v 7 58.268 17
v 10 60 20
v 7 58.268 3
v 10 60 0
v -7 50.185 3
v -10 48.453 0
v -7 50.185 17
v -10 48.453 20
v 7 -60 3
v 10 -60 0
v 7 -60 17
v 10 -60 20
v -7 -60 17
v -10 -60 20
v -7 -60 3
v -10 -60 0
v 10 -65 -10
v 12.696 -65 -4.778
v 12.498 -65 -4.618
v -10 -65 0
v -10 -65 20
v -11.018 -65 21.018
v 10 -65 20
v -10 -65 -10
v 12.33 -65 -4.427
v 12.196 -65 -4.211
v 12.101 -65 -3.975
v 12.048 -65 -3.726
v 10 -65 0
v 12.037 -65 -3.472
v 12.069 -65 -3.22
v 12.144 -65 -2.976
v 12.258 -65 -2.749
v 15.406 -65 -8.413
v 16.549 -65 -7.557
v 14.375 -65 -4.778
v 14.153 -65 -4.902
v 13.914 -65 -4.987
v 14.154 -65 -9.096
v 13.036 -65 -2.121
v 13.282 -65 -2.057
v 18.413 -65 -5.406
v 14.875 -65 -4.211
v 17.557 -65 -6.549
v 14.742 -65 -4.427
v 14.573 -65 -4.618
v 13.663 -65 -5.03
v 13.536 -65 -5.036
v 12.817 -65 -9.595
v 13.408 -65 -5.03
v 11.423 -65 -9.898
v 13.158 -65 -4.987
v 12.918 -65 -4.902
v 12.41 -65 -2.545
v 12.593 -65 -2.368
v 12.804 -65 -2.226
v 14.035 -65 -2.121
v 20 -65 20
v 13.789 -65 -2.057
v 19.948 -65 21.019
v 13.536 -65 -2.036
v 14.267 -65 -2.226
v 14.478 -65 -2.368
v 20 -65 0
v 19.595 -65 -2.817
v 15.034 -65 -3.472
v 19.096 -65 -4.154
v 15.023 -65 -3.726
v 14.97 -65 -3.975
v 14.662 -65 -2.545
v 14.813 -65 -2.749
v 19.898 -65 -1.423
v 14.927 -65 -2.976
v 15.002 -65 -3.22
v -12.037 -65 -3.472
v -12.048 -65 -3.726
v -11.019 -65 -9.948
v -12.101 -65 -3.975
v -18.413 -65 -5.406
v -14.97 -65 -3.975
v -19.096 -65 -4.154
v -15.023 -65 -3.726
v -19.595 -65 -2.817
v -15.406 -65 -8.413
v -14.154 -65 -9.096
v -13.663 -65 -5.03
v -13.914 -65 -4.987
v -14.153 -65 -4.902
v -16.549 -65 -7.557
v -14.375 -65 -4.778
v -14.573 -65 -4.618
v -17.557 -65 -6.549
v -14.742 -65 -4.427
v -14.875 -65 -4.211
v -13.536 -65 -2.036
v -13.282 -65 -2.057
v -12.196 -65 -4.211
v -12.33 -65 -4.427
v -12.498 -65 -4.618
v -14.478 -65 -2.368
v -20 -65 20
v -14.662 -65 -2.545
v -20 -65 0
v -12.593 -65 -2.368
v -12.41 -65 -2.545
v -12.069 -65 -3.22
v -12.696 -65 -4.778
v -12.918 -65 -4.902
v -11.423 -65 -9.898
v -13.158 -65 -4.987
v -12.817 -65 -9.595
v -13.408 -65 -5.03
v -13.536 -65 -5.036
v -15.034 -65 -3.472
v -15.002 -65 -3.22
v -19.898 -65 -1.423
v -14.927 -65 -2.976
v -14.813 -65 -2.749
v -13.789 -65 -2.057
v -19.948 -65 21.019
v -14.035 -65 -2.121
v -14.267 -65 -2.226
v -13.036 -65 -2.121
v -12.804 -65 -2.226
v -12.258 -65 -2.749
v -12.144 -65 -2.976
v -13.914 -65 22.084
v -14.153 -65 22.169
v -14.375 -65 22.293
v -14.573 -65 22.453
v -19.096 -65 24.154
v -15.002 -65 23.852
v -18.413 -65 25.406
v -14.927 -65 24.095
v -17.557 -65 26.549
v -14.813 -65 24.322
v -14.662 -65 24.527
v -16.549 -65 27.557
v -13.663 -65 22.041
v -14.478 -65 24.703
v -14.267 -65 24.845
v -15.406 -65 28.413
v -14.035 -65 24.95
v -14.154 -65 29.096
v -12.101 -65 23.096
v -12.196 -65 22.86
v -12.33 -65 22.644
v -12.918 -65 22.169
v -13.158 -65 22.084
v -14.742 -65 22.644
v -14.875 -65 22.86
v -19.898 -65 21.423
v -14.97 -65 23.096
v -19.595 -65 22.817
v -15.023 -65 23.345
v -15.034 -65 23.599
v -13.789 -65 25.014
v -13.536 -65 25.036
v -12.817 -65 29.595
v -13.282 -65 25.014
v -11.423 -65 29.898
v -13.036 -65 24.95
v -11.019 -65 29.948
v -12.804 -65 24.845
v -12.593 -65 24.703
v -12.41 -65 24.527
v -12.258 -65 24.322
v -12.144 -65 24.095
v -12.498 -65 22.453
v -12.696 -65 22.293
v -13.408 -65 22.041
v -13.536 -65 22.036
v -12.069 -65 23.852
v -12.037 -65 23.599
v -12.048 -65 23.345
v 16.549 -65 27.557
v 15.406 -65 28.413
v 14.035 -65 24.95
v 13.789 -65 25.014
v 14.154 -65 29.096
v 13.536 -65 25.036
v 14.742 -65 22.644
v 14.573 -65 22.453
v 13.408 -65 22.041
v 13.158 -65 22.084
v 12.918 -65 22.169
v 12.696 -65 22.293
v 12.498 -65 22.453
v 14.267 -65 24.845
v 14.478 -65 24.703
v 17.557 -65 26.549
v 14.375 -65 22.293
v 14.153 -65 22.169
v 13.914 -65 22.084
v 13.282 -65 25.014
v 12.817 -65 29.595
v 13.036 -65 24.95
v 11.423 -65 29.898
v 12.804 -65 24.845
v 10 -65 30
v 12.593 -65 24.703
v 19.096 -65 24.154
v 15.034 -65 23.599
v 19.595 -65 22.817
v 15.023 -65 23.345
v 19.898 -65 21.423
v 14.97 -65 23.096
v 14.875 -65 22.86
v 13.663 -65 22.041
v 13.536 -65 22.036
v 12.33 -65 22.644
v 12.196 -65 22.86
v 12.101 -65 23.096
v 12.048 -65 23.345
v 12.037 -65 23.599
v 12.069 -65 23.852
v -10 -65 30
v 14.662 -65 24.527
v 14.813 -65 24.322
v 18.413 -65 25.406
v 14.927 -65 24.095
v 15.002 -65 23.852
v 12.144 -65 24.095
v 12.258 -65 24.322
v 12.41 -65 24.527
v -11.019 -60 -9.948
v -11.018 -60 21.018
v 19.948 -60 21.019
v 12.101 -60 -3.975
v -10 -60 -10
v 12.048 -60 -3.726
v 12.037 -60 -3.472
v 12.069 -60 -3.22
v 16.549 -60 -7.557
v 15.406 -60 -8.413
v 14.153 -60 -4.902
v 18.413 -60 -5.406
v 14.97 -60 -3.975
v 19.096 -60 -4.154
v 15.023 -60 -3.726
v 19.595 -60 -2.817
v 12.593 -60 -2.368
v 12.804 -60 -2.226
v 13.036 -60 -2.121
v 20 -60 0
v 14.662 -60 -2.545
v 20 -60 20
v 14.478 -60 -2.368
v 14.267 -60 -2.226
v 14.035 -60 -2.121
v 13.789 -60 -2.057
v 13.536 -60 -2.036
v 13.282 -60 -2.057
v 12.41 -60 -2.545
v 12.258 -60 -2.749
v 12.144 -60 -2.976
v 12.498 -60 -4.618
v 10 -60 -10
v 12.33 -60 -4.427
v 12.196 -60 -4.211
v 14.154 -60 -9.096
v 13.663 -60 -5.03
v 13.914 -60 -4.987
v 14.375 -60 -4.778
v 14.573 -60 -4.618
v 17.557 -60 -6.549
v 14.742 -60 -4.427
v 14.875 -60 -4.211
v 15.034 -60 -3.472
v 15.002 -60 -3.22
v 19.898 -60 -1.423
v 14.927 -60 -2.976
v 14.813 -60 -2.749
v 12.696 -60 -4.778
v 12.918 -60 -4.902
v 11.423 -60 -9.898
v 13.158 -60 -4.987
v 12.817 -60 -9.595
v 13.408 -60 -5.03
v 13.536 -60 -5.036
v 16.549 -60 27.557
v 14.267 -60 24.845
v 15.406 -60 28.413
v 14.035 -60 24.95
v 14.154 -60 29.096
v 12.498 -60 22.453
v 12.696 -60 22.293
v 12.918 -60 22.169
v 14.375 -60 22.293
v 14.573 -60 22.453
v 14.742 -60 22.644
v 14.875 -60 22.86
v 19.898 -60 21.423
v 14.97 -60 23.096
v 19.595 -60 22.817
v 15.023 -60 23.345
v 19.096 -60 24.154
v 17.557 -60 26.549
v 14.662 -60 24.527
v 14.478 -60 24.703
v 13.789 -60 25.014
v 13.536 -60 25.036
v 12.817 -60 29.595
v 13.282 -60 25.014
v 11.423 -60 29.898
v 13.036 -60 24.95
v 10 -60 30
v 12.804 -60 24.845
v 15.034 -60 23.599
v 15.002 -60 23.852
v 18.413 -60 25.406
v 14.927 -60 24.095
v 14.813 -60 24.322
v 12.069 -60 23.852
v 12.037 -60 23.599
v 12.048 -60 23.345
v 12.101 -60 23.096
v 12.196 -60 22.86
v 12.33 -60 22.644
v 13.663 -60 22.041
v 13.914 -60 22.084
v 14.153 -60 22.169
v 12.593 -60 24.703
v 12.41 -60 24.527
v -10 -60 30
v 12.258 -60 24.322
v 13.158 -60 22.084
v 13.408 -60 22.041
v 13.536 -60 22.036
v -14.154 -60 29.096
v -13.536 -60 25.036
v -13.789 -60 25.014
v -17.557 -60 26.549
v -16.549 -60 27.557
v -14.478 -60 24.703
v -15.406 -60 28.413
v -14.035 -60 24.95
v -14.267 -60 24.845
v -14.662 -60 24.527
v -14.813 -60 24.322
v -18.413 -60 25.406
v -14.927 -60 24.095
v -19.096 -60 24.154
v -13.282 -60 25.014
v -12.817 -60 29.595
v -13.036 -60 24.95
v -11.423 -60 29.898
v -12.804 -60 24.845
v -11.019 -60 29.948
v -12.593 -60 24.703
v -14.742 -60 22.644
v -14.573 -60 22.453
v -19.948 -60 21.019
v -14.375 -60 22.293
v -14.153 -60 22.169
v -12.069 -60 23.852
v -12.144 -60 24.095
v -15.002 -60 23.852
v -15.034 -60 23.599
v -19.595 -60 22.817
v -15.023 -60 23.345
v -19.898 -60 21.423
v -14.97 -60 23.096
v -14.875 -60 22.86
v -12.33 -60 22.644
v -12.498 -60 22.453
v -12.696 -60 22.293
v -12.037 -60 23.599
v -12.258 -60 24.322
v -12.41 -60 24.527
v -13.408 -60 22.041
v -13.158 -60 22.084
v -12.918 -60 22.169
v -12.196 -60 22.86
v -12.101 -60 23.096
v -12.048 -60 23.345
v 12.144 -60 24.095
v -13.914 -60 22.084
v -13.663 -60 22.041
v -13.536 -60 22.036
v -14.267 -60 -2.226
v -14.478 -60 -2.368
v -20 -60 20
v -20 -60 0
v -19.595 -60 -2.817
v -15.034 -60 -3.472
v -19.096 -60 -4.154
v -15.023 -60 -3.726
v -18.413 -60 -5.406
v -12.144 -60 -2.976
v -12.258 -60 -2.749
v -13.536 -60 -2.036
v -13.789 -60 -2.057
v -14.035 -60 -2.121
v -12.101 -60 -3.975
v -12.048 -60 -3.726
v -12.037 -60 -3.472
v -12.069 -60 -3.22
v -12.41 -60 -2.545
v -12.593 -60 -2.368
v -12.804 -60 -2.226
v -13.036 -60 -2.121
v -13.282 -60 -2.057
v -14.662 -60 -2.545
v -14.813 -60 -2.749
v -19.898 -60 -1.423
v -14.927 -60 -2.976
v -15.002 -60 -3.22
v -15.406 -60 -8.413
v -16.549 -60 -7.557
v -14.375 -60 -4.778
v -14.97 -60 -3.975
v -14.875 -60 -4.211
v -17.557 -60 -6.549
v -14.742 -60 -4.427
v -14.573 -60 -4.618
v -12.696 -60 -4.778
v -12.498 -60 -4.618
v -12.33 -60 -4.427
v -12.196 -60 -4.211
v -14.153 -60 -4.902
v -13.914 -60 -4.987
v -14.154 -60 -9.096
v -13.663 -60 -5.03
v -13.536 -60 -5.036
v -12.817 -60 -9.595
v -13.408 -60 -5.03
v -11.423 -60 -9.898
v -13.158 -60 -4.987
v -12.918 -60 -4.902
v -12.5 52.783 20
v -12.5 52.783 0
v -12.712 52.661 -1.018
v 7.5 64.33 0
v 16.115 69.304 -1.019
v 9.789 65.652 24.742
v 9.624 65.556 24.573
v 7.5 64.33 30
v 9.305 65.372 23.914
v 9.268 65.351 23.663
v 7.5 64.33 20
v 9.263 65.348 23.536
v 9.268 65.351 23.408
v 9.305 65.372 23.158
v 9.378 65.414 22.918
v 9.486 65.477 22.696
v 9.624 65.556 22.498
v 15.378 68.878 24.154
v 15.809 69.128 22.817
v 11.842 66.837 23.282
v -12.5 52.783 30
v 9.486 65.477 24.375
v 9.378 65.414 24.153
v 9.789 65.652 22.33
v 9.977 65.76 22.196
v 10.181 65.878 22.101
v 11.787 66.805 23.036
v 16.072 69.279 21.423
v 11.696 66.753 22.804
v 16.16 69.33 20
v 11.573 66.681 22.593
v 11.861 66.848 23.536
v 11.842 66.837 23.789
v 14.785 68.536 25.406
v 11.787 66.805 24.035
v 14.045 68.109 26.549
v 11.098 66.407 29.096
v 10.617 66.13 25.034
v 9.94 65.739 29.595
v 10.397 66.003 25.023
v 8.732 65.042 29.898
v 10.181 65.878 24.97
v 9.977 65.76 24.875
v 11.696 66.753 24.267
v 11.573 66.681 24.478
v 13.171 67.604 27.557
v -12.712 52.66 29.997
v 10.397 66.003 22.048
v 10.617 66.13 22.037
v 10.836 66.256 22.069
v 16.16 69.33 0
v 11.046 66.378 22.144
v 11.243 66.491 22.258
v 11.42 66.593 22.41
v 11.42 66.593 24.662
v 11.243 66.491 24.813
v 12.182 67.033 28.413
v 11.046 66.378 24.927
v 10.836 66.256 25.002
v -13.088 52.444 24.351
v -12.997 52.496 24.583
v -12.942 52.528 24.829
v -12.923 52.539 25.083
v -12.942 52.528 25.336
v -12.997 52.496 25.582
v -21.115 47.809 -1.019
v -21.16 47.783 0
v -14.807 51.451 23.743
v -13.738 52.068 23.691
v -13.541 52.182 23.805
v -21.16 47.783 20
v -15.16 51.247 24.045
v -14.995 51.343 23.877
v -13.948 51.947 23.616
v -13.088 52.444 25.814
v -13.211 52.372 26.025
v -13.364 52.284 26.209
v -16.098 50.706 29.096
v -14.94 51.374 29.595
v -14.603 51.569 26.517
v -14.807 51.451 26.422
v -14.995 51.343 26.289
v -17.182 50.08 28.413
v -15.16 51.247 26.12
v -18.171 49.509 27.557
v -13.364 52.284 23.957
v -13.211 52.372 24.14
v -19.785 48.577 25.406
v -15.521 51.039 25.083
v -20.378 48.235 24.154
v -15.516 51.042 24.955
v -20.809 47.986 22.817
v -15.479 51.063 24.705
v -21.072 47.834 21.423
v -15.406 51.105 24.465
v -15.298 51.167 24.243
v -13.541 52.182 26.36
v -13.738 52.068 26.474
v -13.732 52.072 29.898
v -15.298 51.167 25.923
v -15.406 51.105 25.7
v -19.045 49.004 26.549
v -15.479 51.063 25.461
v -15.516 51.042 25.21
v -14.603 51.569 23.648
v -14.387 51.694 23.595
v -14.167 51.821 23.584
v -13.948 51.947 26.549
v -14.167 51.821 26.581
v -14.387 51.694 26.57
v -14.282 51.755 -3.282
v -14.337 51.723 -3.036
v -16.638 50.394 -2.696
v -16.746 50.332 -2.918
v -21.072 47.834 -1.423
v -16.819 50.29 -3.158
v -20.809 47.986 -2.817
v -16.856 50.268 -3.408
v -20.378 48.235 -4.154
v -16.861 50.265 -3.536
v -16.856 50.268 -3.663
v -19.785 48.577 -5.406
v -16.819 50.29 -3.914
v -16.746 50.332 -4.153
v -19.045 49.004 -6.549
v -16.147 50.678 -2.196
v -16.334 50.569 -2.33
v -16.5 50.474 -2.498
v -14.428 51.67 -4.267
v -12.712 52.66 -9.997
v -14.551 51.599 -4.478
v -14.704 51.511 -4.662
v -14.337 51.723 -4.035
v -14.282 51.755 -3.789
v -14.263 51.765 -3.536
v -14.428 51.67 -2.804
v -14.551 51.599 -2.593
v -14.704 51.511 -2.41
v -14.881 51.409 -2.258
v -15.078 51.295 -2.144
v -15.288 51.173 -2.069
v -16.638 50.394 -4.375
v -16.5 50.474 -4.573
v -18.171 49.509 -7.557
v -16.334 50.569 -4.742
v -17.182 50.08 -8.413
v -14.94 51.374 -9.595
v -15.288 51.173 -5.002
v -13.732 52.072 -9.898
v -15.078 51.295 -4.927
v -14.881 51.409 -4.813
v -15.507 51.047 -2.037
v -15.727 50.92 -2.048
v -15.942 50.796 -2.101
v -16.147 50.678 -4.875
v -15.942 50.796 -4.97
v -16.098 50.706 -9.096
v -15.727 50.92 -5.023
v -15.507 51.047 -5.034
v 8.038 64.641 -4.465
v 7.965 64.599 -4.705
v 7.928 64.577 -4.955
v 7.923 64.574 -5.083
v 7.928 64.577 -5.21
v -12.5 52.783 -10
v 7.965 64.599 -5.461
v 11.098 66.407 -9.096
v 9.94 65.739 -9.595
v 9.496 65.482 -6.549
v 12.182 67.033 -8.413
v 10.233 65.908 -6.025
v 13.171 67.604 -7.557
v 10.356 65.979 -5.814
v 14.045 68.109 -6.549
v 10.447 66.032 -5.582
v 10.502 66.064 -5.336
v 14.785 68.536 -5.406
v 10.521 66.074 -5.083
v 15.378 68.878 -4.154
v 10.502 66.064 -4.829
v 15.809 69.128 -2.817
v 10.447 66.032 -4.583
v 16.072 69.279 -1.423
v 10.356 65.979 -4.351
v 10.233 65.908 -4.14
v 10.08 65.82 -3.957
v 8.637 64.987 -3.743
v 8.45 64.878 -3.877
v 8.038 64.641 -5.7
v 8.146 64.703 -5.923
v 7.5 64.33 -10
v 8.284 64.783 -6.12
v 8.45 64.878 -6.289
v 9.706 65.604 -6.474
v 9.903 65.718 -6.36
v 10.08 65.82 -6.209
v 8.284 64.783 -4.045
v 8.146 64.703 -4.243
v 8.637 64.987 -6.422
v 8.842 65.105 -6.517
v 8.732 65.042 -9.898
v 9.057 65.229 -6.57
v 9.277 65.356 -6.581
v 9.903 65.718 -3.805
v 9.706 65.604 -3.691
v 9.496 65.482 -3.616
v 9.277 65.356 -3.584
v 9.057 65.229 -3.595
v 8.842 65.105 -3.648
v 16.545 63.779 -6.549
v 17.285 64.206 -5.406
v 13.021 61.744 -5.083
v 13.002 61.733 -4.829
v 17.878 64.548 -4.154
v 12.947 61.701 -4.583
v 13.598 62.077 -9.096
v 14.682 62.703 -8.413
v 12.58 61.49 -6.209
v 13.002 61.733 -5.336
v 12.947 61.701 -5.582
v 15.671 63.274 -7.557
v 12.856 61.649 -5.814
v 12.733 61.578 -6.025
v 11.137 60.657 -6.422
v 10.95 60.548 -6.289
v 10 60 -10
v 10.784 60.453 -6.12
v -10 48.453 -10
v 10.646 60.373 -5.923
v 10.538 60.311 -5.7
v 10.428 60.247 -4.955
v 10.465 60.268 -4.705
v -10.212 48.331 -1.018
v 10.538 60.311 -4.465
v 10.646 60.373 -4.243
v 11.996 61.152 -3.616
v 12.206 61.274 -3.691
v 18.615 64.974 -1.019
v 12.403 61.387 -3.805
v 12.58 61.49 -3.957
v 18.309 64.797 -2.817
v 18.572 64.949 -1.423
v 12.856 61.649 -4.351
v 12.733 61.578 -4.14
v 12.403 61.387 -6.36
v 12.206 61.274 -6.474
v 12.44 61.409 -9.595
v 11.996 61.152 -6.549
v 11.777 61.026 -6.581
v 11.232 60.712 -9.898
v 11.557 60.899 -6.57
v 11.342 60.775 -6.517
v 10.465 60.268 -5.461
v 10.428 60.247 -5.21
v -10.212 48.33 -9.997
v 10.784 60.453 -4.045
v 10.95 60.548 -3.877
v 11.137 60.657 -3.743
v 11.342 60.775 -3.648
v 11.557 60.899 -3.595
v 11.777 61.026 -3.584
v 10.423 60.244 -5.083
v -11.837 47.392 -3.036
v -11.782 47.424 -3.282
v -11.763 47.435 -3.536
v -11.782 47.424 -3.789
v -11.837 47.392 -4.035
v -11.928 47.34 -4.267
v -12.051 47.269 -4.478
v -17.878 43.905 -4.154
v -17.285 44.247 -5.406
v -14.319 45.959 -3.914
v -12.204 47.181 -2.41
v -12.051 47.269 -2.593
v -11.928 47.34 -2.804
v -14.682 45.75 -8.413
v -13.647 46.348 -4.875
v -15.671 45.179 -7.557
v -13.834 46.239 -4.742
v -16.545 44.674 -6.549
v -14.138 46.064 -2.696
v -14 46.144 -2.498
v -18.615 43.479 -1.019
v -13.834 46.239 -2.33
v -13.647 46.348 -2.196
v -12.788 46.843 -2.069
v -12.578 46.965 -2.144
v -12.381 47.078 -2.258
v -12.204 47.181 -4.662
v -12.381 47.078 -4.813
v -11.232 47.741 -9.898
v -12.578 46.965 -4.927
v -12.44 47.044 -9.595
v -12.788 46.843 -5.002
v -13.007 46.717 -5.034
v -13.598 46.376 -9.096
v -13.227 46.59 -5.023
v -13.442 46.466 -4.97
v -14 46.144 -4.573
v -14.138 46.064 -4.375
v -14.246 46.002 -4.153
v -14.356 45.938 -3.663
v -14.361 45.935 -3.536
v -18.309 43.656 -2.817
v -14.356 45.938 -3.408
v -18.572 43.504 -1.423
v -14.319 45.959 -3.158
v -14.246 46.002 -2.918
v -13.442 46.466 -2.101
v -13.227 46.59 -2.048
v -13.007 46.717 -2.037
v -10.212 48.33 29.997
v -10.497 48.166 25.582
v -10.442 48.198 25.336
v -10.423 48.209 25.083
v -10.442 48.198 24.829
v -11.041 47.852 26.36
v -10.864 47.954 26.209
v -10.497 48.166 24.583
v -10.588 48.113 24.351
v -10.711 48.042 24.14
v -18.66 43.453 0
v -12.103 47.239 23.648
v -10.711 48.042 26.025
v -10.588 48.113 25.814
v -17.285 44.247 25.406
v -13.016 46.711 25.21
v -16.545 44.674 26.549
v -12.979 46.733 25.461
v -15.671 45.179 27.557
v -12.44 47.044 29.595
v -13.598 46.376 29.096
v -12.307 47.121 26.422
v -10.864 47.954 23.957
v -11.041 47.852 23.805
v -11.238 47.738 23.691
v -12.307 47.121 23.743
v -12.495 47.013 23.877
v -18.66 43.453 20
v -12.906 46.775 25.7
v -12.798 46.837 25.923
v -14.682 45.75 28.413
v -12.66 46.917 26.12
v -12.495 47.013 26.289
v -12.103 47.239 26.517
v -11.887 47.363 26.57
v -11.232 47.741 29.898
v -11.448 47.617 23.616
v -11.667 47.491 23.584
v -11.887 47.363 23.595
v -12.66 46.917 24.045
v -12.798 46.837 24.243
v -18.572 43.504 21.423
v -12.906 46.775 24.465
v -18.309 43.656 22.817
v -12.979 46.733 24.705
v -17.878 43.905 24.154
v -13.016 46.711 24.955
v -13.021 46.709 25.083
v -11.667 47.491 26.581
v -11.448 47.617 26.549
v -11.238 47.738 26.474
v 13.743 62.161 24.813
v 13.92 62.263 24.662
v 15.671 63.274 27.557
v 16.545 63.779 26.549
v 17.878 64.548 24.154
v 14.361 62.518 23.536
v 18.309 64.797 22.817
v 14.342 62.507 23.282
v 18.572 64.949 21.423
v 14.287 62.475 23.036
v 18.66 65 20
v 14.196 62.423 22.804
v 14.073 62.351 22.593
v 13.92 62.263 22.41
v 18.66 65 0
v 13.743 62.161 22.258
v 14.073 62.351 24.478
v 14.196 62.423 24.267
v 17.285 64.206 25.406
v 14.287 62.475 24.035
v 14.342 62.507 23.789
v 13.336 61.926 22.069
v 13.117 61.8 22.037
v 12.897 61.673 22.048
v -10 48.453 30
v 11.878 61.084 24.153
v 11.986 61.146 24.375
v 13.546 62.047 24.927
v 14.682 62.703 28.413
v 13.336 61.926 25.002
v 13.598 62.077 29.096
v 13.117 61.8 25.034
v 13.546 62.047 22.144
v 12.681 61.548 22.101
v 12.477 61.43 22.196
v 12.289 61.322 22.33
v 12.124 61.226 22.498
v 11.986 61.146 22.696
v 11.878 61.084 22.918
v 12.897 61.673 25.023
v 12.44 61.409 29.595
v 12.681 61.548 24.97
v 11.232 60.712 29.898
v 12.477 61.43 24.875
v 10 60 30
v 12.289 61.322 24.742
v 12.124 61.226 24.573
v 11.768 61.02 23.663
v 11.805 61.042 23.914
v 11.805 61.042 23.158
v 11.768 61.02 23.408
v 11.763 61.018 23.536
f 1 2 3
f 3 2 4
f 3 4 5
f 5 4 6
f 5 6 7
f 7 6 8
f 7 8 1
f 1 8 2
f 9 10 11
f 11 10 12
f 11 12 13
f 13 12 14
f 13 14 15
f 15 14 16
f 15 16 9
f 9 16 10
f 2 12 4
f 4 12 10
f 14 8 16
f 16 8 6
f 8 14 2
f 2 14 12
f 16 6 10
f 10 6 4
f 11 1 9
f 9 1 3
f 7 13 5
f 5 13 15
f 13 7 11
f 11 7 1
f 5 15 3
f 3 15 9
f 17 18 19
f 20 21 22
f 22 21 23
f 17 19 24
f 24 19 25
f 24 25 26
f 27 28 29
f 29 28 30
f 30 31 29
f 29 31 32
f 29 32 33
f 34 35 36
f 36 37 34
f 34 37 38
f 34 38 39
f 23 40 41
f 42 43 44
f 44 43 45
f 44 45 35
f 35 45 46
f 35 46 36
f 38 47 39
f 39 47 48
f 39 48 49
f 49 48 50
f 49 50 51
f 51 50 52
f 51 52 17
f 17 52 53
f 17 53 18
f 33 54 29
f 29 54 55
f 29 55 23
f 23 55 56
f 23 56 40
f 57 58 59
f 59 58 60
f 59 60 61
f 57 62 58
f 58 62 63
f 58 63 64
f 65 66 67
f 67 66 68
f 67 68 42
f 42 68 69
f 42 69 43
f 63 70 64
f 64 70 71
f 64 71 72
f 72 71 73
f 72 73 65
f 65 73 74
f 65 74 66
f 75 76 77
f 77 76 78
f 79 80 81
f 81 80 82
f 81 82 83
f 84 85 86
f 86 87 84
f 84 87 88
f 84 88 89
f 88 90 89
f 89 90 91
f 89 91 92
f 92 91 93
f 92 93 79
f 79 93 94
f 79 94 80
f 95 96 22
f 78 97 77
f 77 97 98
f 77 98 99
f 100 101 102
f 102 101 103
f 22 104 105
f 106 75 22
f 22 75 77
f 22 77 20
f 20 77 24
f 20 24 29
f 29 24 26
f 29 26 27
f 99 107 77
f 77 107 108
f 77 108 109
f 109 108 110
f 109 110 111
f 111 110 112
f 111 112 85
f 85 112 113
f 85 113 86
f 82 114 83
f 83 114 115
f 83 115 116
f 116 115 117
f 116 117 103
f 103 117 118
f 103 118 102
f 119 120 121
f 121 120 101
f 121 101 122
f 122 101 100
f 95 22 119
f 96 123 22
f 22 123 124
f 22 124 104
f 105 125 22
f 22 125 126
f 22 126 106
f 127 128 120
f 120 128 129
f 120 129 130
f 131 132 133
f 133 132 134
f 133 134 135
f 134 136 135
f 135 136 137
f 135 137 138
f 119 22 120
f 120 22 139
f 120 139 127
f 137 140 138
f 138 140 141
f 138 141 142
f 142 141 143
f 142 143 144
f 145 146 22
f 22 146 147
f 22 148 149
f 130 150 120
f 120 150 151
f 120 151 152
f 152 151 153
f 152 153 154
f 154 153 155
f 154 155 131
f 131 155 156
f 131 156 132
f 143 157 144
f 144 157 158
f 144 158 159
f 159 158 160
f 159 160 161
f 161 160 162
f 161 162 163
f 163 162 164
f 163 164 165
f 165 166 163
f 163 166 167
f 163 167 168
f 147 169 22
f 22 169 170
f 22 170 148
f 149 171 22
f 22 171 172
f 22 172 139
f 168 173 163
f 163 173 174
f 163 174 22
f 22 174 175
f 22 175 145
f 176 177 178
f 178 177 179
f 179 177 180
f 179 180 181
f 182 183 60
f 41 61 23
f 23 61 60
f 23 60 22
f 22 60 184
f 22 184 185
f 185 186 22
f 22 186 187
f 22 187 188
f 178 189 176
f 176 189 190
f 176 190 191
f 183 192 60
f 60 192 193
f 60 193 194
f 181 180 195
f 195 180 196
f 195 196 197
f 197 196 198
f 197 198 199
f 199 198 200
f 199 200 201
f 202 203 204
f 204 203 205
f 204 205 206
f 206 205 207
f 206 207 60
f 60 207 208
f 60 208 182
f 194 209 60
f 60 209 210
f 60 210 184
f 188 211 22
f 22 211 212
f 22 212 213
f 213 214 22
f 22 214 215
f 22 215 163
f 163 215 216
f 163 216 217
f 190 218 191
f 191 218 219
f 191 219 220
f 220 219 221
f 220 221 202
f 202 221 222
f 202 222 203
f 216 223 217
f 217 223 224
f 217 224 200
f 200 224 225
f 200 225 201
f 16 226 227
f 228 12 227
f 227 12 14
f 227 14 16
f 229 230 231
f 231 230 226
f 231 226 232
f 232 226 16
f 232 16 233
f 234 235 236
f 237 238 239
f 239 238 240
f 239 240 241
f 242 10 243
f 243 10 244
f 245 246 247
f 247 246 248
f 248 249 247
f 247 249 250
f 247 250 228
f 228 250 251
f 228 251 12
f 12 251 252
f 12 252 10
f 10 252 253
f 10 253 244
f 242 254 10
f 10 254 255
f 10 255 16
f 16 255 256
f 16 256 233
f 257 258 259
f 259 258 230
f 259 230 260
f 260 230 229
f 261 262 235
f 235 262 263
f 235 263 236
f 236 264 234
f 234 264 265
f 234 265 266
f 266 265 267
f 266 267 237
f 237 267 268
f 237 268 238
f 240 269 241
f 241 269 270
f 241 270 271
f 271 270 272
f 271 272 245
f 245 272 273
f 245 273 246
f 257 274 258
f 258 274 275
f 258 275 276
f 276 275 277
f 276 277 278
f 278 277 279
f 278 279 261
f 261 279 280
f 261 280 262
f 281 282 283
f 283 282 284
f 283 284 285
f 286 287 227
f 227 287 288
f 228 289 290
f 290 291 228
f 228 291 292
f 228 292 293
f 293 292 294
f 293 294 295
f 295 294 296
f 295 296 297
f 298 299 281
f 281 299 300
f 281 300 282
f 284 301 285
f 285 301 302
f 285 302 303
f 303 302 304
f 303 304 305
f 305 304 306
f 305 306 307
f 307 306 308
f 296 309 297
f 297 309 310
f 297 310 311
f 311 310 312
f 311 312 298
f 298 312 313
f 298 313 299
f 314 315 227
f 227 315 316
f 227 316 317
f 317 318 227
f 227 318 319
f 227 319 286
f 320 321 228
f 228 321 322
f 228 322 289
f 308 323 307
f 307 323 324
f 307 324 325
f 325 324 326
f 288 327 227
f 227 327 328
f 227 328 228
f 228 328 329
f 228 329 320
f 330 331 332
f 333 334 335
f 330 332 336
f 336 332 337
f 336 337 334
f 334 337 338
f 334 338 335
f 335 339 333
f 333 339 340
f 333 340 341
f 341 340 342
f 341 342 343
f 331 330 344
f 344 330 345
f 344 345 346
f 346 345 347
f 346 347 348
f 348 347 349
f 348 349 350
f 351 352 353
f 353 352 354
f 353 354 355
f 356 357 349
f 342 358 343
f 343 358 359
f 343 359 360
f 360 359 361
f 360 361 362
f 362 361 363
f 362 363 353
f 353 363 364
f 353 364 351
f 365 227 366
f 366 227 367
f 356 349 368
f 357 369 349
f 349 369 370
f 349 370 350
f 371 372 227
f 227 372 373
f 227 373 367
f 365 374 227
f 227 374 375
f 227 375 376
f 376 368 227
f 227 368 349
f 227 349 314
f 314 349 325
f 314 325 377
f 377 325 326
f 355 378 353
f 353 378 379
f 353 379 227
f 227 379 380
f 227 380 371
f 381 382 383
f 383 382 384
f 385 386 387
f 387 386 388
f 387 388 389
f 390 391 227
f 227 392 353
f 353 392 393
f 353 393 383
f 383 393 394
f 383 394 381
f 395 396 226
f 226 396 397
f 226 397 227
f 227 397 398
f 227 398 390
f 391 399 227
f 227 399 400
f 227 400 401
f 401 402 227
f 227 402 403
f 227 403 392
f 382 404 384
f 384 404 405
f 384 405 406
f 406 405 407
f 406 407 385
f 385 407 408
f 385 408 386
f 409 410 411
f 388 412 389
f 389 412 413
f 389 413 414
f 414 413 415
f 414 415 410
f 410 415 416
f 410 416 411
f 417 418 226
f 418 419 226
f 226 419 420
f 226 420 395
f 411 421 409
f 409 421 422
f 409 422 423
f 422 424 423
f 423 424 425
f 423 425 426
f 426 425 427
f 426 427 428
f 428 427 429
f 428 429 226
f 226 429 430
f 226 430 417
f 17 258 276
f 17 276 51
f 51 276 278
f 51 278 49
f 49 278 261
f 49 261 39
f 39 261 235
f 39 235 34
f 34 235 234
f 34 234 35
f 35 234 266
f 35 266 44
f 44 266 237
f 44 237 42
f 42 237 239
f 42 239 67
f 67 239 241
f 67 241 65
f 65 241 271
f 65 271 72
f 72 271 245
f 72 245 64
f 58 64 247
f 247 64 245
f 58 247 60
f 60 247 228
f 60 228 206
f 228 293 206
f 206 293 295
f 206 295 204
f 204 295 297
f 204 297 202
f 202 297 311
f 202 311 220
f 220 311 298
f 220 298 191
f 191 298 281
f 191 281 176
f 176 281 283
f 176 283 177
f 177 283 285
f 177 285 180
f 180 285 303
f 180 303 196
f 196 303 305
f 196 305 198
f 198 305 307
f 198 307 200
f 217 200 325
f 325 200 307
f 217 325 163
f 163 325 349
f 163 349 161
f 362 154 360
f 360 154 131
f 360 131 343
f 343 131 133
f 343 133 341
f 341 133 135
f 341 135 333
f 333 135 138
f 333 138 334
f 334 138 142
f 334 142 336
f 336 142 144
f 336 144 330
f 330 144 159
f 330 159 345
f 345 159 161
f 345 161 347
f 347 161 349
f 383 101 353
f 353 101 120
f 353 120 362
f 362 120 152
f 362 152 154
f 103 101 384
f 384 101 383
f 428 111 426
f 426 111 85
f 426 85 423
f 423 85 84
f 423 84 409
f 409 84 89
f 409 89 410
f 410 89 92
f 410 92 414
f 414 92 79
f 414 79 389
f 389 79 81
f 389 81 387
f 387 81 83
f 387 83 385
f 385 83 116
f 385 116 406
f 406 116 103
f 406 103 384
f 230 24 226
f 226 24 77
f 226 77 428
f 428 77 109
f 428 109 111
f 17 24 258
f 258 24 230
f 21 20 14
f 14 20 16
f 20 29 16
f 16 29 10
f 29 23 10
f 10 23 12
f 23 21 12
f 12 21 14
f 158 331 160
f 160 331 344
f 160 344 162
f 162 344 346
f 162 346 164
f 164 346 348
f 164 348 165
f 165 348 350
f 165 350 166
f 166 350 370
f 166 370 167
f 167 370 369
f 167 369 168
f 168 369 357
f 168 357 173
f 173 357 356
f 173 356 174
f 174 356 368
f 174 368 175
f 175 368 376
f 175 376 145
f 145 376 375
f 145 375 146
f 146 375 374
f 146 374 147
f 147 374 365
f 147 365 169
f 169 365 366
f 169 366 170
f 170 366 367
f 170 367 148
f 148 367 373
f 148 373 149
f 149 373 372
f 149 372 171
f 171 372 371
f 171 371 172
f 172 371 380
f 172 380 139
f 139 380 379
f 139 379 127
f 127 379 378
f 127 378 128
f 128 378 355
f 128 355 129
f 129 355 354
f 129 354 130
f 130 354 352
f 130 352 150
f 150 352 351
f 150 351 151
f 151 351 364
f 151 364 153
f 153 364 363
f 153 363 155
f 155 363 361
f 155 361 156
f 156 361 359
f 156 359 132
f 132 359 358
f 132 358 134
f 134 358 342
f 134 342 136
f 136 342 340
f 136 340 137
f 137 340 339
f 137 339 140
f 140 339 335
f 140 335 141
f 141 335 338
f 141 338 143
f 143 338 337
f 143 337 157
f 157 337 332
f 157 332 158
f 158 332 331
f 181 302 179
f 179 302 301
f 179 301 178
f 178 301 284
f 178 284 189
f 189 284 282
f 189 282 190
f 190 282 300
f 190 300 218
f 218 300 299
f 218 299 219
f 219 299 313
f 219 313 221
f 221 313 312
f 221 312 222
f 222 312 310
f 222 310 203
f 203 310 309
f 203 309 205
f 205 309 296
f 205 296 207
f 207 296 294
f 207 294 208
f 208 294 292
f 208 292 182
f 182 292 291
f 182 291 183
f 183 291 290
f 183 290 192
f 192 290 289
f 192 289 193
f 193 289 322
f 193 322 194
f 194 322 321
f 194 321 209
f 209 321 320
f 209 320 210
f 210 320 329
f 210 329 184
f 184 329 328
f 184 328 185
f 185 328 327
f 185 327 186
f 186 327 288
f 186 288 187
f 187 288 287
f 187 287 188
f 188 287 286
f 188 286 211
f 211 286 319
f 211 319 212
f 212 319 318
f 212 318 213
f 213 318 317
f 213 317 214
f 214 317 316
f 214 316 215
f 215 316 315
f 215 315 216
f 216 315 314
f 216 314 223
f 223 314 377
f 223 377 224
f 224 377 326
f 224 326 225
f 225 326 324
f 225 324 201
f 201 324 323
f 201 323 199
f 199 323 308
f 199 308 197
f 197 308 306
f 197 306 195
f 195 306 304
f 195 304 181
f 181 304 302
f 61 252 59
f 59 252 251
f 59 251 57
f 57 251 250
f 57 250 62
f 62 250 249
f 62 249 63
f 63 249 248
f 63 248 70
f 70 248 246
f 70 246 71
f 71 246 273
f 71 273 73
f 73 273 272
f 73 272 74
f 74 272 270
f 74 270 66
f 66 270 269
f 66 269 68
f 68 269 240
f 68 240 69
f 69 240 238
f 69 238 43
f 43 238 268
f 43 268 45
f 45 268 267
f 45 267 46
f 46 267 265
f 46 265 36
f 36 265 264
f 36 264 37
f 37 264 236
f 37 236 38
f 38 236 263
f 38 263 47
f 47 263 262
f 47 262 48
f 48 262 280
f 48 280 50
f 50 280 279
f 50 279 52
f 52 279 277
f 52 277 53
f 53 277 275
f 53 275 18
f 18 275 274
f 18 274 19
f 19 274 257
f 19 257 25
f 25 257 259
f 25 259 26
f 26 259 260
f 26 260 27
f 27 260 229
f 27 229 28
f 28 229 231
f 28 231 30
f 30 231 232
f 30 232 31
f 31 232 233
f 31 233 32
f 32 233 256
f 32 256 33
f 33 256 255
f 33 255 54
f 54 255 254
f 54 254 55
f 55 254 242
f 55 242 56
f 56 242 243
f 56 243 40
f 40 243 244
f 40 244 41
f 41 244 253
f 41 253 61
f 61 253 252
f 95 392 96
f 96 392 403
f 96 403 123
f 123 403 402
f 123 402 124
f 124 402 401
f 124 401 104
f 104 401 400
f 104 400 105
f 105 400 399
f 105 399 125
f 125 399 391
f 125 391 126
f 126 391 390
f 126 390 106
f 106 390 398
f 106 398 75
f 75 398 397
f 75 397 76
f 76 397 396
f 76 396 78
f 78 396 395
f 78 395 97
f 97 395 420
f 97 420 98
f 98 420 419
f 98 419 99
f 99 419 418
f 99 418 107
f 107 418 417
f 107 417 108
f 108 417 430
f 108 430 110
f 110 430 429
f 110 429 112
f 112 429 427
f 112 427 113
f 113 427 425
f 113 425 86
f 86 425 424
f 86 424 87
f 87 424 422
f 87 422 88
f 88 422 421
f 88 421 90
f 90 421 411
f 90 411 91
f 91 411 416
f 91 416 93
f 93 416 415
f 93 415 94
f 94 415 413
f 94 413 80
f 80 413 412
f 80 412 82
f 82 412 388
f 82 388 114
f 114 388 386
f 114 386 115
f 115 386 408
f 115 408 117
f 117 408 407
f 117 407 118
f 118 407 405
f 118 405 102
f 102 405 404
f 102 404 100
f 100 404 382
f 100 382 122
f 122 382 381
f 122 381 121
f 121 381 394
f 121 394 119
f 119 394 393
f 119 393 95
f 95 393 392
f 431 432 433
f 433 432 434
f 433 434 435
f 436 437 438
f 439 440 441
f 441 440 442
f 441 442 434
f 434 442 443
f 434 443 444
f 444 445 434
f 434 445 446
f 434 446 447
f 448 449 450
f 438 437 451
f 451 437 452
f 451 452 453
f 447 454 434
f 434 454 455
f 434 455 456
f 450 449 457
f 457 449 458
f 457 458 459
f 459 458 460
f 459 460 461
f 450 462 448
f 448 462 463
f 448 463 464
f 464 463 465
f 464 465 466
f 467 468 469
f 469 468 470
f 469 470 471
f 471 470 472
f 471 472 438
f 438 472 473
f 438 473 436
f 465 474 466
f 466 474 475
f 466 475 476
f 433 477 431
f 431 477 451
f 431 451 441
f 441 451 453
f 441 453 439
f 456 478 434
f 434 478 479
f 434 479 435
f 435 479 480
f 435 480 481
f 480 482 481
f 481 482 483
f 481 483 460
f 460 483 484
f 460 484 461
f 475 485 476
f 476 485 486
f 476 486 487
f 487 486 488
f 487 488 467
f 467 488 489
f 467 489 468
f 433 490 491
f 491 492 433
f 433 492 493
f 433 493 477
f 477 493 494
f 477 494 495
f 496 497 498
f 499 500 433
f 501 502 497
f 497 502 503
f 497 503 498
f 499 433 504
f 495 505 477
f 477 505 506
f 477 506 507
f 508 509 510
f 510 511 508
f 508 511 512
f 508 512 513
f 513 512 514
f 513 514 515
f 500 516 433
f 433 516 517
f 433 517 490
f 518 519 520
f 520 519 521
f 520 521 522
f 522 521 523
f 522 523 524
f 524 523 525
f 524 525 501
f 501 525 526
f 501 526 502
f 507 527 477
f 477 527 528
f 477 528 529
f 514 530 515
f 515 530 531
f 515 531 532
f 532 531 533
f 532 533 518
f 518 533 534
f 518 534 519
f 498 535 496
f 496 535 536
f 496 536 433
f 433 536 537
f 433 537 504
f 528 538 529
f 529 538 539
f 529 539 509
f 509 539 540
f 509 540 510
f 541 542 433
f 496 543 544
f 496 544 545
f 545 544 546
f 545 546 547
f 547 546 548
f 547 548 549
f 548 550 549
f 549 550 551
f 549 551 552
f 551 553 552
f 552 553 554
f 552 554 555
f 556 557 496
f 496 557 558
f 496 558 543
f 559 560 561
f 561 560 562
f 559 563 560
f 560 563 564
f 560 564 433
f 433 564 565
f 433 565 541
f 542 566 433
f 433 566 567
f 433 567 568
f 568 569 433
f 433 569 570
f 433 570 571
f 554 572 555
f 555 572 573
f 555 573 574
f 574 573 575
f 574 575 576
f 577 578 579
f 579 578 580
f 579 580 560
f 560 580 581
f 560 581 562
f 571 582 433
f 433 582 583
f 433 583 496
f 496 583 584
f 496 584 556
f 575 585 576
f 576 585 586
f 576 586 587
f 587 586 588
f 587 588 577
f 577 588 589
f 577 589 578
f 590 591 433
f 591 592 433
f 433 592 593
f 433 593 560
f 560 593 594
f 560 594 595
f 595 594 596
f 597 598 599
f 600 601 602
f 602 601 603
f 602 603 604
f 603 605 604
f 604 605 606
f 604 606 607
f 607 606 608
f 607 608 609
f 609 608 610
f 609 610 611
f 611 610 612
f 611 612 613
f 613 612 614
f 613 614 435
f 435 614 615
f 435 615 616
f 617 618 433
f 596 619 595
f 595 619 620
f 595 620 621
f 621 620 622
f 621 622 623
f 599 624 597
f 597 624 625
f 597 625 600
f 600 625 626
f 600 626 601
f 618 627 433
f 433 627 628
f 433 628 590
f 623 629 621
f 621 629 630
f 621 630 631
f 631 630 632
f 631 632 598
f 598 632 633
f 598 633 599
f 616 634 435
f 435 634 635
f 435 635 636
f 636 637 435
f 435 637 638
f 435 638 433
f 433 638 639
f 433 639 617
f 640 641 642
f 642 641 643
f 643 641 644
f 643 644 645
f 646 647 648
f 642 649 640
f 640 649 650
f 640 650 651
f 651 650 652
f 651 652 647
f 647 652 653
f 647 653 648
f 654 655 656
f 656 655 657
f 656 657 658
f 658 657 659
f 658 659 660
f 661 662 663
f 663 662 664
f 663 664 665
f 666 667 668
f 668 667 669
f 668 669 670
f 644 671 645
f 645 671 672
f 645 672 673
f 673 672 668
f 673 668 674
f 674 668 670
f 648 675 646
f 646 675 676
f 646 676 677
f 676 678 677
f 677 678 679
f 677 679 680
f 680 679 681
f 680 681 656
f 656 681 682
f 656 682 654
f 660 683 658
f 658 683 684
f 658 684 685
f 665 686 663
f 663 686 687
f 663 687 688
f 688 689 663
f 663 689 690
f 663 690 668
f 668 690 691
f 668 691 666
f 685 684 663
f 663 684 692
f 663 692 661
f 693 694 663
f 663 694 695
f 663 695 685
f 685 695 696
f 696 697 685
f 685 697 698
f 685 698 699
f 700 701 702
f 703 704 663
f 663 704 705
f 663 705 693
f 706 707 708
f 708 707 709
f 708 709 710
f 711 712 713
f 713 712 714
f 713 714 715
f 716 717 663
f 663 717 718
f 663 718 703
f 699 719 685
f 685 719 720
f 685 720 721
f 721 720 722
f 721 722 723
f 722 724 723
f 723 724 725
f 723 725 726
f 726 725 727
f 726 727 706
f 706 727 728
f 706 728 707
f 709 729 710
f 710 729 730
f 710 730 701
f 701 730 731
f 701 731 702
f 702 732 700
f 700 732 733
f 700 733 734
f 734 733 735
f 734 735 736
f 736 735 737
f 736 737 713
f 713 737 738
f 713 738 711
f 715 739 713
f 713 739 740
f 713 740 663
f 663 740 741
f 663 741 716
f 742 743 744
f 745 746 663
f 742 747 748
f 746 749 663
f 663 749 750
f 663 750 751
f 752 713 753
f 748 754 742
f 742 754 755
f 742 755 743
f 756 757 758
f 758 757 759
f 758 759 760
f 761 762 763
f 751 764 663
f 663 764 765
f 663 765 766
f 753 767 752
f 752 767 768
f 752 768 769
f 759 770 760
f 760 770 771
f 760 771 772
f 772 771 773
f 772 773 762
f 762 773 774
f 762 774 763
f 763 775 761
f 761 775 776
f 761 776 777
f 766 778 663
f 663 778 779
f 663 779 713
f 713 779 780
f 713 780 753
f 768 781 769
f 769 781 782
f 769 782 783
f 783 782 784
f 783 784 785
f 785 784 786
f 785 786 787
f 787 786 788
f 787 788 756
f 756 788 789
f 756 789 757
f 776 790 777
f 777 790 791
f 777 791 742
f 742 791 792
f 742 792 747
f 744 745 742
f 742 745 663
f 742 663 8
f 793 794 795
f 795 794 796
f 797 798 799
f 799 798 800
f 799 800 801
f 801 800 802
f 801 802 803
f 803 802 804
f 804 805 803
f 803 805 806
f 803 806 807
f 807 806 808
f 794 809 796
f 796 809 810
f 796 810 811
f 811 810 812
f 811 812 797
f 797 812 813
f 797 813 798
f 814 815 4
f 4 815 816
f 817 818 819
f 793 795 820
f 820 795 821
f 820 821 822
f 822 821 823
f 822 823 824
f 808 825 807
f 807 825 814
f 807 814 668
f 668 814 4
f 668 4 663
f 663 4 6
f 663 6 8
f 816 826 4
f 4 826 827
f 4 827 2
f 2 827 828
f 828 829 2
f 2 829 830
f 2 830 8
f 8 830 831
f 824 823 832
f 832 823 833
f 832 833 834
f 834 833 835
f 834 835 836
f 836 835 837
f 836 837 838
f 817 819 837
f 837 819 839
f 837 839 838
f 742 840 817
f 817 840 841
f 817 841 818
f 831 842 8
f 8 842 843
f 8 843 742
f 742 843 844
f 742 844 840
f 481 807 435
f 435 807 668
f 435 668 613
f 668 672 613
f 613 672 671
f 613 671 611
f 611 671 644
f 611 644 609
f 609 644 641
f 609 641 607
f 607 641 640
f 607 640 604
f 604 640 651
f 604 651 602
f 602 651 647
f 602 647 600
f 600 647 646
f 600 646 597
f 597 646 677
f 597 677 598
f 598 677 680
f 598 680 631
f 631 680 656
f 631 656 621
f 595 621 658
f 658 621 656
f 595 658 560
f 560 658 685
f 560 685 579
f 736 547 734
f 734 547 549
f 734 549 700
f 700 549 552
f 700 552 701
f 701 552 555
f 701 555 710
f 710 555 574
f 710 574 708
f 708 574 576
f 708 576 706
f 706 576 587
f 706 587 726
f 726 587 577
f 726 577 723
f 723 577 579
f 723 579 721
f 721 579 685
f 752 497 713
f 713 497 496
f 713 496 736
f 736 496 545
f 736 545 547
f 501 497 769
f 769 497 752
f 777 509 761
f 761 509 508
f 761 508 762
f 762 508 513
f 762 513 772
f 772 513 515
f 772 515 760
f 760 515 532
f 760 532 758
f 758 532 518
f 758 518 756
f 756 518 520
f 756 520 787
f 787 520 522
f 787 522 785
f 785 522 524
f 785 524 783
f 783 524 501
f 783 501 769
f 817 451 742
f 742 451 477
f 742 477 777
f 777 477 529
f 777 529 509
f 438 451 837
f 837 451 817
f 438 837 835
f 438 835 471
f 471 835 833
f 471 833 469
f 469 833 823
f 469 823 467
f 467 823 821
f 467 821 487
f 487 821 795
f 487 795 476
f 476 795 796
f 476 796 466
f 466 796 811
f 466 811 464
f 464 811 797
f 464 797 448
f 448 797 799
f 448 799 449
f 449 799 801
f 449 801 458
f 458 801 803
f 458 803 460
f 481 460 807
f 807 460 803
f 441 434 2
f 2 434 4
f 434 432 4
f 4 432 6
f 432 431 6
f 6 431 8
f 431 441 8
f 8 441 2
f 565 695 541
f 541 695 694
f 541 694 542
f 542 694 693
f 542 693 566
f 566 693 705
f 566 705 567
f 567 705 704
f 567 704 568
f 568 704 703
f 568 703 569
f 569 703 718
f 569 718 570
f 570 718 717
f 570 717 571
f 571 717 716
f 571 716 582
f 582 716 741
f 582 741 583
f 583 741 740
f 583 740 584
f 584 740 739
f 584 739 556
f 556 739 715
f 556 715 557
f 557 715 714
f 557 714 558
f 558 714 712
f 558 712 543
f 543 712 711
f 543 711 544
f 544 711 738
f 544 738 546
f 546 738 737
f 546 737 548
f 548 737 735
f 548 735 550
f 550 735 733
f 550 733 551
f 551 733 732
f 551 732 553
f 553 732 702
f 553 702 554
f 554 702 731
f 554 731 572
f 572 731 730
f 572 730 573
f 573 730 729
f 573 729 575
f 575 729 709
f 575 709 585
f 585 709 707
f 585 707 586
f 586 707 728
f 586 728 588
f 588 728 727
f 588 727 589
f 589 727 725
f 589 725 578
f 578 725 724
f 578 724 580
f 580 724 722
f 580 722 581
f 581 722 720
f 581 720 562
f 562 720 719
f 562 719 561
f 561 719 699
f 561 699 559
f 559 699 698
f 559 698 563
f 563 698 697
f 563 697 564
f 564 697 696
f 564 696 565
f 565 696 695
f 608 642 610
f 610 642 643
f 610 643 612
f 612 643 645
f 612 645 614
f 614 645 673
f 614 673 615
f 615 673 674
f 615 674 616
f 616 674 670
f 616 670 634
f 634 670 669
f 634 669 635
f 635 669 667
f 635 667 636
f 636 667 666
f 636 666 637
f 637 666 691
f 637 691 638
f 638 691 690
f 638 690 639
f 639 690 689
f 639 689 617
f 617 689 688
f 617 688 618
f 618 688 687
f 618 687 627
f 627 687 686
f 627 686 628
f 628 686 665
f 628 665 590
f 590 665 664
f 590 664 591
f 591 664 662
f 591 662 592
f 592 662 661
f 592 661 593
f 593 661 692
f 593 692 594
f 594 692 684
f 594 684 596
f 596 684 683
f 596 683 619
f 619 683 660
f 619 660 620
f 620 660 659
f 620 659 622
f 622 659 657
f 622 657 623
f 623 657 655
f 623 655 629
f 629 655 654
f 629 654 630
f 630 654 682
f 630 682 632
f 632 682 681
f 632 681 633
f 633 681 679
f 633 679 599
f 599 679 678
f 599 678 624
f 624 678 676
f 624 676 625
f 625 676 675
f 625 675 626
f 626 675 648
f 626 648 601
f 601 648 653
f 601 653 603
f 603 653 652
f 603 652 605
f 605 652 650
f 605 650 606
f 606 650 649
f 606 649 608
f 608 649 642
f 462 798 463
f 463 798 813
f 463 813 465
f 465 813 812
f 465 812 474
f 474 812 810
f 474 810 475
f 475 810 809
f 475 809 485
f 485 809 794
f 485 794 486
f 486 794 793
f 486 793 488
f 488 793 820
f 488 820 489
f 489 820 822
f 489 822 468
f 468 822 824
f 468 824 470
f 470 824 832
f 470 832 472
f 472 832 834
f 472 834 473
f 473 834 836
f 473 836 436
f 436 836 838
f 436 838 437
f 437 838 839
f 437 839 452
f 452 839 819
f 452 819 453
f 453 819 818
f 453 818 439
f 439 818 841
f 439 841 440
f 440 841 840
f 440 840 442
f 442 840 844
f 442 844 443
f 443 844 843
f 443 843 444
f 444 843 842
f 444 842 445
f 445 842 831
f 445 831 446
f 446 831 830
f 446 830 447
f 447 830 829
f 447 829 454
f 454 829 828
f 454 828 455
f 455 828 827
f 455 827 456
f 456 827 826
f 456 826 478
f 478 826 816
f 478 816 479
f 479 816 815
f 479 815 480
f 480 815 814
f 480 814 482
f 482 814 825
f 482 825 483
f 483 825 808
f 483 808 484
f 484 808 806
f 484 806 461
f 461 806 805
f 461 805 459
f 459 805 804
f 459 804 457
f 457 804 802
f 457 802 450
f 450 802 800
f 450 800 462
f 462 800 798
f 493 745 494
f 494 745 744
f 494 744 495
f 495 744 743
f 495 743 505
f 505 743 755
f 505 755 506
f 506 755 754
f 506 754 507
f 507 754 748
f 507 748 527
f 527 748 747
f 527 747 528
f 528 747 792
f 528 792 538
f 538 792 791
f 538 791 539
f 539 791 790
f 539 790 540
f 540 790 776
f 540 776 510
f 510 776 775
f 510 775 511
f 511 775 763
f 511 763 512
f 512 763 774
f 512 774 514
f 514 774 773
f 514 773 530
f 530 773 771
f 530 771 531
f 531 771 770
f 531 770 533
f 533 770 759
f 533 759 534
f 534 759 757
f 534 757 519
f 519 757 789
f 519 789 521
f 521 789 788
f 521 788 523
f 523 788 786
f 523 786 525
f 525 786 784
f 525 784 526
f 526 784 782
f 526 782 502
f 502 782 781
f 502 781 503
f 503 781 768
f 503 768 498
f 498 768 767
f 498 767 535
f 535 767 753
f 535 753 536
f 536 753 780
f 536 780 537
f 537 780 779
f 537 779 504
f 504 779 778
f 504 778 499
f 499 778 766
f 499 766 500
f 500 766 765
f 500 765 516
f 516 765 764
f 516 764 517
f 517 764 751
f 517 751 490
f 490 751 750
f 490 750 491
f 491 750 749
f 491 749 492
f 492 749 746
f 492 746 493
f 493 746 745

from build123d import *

# Parameters (mm, degrees)
BOSS_EXTRU_1_DEPTH = 20
COQUE1_T           = -3
ESQUISSE2_R        = 1.5
ESQUISSE2_W        = 20
ESQUISSE2_H        = 20
BOSS_EXTRU_2_DEPTH = 5
ESQUISSE3_R        = 1.5
ESQUISSE3_W        = 23.094010768
ESQUISSE3_H        = 20
BOSS_EXTRU_3_DEPTH = 5


with BuildPart() as part:
    # Esquisse1 → Boss.-Extru.1 (new body)
    with BuildSketch(Plane.XY):
        Polygon((10, 60), (-10, 48.452994616), (-10, -60), (10, -60), align=None)
    extrude(amount=BOSS_EXTRU_1_DEPTH)

    # Coque1
    coque1_openings = [part.faces().sort_by_distance(p)[0] for p in [
        (0, -60, 10),
        (0, 54.226497308, 10),
    ]]
    offset(amount=COQUE1_T, openings=coque1_openings, kind=Kind.INTERSECTION)


with BuildPart() as body_2:
    # Esquisse2 → Boss.-Extru.2 (new body)
    with BuildSketch(Plane.XZ.offset(60)):
        with BuildLine():
            Line((-20, 20), (-20, 0))
            ThreePointArc((-20, 0), (-17.071067812, -7.071067812), (-10, -10))
            Line((-10, -10), (10, -10))
            ThreePointArc((10, -10), (17.071067812, -7.071067812), (20, 0))
            Line((20, 0), (20, 20))
            ThreePointArc((20, 20), (17.071067812, 27.071067812), (10, 30))
            Line((10, 30), (-10, 30))
            ThreePointArc((-10, 30), (-17.071067812, 27.071067812), (-20, 20))
        make_face()
        with Locations(Location((-13.535533906, 23.535533906, 0), (0, 0, 270))):
            Circle(ESQUISSE2_R, mode=Mode.SUBTRACT)
        with Locations(Location((13.535533906, 23.535533906, 0), (0, 0, 270))):
            Circle(ESQUISSE2_R, mode=Mode.SUBTRACT)
        with Locations(Location((13.535533906, -3.535533906, 0), (0, 0, 270))):
            Circle(ESQUISSE2_R, mode=Mode.SUBTRACT)
        with Locations(Location((-13.535533906, -3.535533906, 0), (0, 0, 270))):
            Circle(ESQUISSE2_R, mode=Mode.SUBTRACT)
        with Locations((0, 10)):
            Rectangle(ESQUISSE2_W, ESQUISSE2_H, mode=Mode.SUBTRACT)
    extrude(amount=BOSS_EXTRU_2_DEPTH)


with BuildPart() as body_3:
    # Esquisse3 → Boss.-Extru.3 (new body)
    with BuildSketch(Plane(origin=(-23.480762114, 40.669872981, 0), x_dir=(0.8660254037844415, 0.49999999999999517, 0), z_dir=(-0.4999999999999951, 0.8660254037844414, 0))):
        with BuildLine():
            Line((38.660254038, 10), (15.56624327, 10))
            ThreePointArc((15.56624327, 10), (8.495175458, 7.071067812), (5.56624327, 0))
            Line((5.56624327, 0), (5.56624327, -20))
            ThreePointArc((5.56624327, -20), (8.495175458, -27.071067812), (15.56624327, -30))
            Line((15.56624327, -30), (38.660254038, -30))
            ThreePointArc((38.660254038, -30), (45.73132185, -27.071067812), (48.660254038, -20))
            Line((48.660254038, -20), (48.660254038, 0))
            ThreePointArc((48.660254038, 0), (45.73132185, 7.071067812), (38.660254038, 10))
        make_face()
        with Locations((12.030709364, 3.535533906)):
            Circle(ESQUISSE3_R, mode=Mode.SUBTRACT)
        with Locations((40.64878256, 5.08253929)):
            Circle(ESQUISSE3_R, mode=Mode.SUBTRACT)
        with Locations((42.195787944, -23.535533906)):
            Circle(ESQUISSE3_R, mode=Mode.SUBTRACT)
        with Locations((13.577714748, -25.08253929)):
            Circle(ESQUISSE3_R, mode=Mode.SUBTRACT)
        with Locations((27.113248654, -10)):
            Rectangle(ESQUISSE3_W, ESQUISSE3_H, mode=Mode.SUBTRACT)
    extrude(amount=BOSS_EXTRU_3_DEPTH)


solid = Compound([part.part, body_2.part, body_3.part])
